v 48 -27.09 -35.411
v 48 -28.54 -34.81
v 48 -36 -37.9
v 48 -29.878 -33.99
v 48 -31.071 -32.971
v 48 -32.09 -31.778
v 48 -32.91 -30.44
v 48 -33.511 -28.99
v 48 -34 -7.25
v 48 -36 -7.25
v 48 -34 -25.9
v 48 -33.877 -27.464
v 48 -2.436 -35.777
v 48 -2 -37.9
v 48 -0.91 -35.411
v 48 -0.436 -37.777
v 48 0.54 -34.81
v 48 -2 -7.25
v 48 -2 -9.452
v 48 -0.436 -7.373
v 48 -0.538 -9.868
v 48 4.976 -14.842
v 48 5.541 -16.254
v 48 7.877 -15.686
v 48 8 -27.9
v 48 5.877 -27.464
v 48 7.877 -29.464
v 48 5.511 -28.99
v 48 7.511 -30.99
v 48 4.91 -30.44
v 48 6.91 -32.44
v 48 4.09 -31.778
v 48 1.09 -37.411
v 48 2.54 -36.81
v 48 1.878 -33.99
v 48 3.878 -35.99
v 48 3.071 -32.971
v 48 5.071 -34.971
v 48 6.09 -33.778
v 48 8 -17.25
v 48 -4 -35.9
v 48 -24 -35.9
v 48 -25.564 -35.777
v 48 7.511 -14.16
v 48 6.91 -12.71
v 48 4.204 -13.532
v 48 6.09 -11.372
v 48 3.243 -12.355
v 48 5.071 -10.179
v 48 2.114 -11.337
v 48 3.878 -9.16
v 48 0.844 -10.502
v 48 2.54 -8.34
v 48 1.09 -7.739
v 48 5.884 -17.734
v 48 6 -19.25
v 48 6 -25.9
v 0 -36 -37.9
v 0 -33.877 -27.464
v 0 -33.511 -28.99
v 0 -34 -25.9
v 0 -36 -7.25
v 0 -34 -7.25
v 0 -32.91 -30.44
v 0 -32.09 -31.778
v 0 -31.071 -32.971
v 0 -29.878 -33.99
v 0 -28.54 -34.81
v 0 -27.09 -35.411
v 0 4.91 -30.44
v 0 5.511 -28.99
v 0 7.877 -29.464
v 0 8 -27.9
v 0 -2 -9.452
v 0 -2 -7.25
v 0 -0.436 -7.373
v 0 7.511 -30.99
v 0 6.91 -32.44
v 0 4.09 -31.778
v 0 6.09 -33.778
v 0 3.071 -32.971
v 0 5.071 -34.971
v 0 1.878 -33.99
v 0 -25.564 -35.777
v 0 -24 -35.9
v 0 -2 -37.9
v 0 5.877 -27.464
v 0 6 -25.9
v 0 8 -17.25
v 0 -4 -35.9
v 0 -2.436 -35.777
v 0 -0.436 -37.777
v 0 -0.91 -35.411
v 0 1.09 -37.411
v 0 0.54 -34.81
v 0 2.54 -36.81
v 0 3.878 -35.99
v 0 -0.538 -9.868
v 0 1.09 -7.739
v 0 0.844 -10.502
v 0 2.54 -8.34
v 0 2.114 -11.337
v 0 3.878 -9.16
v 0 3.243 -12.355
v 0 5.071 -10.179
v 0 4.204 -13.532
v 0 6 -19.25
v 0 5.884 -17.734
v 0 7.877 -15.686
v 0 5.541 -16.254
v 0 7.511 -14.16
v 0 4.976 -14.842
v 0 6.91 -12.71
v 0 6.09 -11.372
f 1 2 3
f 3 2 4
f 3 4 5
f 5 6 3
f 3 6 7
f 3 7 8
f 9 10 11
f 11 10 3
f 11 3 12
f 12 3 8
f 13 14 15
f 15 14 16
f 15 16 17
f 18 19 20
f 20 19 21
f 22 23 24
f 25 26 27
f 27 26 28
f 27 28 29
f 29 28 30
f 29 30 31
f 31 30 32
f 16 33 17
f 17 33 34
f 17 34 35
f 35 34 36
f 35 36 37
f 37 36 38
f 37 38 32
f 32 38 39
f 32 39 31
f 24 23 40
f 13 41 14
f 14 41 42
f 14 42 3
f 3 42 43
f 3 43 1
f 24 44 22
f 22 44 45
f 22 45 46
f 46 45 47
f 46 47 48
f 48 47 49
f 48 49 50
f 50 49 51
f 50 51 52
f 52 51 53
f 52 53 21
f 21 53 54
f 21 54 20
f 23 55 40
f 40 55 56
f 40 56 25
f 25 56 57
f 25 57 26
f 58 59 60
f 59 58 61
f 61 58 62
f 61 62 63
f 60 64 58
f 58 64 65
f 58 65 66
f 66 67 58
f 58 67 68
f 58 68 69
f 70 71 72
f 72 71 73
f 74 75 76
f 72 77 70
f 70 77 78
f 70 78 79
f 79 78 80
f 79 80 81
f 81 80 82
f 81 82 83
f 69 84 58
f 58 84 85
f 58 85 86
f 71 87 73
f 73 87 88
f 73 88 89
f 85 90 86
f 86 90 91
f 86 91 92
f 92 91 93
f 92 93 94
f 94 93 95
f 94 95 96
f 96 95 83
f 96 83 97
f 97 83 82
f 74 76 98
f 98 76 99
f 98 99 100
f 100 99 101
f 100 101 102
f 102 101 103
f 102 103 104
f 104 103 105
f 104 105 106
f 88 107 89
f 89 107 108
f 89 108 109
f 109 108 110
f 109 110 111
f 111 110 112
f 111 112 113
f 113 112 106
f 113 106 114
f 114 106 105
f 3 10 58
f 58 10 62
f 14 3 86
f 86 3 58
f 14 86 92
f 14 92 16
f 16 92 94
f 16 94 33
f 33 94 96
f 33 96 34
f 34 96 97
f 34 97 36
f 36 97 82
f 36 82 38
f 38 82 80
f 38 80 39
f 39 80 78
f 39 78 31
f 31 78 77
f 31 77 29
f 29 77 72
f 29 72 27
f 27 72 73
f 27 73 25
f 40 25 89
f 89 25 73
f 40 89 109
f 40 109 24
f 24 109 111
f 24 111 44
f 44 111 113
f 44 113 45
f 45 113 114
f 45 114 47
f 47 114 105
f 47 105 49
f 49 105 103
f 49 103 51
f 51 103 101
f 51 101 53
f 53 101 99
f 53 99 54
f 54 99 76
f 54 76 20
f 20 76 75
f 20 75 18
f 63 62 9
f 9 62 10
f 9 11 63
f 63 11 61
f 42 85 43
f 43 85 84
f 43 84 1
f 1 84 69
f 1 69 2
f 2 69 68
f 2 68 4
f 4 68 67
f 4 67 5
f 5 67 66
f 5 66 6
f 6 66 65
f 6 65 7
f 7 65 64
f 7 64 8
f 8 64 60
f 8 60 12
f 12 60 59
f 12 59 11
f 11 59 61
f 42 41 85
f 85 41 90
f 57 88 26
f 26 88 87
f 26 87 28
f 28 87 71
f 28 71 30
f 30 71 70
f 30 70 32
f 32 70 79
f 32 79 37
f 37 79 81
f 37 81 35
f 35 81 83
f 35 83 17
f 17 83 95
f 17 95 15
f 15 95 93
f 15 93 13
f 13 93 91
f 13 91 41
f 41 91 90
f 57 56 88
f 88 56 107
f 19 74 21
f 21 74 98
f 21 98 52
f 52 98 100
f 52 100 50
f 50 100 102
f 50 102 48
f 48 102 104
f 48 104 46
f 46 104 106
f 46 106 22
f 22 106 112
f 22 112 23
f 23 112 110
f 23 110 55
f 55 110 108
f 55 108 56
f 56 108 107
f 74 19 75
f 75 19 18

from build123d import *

# Parameters (mm, degrees)
BOSS_EXTRUDE3_DEPTH = 48
CUT_EXTRUDE2_DEPTH  = 54


with BuildPart() as part:
    # Sketch3 → Boss-Extrude3 (new body)
    with BuildSketch(Plane(origin=(0, 0, 0), x_dir=(0, 0, -1), z_dir=(1, 0, 0))):
        with BuildLine():
            Line((7.25, -20.3), (7.25, -11.034312351))
            Line((7.25, -11.034312351), (7.25, -2))
            ThreePointArc((7.25, -2), (10.178932188, 5.071067812), (17.25, 8))
            Line((17.25, 8), (27.9, 8))
            ThreePointArc((27.9, 8), (34.971067812, 5.071067812), (37.9, -2))
            Line((37.9, -2), (37.9, -20.3))
            Line((37.9, -20.3), (37.9, -36))
            Line((37.9, -36), (7.25, -36))
            Line((7.25, -36), (7.25, -20.3))
        make_face()
        with BuildLine():
            Line((9.25, -20.3), (9.25, -11.034312351))
            Line((9.25, -11.034312351), (9.25, -4))
            ThreePointArc((9.25, -4), (12.178932188, 3.071067812), (19.25, 6))
            Line((19.25, 6), (25.9, 6))
            ThreePointArc((25.9, 6), (32.971067812, 3.071067812), (35.9, -4))
            Line((35.9, -4), (35.9, -20.3))
            Line((35.9, -20.3), (35.9, -24))
            ThreePointArc((35.9, -24), (32.971067812, -31.071067812), (25.9, -34))
            Line((25.9, -34), (9.25, -34))
            Line((9.25, -34), (9.25, -20.3))
        make_face(mode=Mode.SUBTRACT)
    extrude(amount=BOSS_EXTRUDE3_DEPTH)

    # Sketch4 → Cut-Extrude2 (cut)
    with BuildSketch(Plane.ZY):
        Polygon((-9.25, -34), (-7.25, -34), (-7.25, -2), (-9.452041029, -2), align=None)
    extrude(amount=-CUT_EXTRUDE2_DEPTH, mode=Mode.SUBTRACT)


solid = part.part
